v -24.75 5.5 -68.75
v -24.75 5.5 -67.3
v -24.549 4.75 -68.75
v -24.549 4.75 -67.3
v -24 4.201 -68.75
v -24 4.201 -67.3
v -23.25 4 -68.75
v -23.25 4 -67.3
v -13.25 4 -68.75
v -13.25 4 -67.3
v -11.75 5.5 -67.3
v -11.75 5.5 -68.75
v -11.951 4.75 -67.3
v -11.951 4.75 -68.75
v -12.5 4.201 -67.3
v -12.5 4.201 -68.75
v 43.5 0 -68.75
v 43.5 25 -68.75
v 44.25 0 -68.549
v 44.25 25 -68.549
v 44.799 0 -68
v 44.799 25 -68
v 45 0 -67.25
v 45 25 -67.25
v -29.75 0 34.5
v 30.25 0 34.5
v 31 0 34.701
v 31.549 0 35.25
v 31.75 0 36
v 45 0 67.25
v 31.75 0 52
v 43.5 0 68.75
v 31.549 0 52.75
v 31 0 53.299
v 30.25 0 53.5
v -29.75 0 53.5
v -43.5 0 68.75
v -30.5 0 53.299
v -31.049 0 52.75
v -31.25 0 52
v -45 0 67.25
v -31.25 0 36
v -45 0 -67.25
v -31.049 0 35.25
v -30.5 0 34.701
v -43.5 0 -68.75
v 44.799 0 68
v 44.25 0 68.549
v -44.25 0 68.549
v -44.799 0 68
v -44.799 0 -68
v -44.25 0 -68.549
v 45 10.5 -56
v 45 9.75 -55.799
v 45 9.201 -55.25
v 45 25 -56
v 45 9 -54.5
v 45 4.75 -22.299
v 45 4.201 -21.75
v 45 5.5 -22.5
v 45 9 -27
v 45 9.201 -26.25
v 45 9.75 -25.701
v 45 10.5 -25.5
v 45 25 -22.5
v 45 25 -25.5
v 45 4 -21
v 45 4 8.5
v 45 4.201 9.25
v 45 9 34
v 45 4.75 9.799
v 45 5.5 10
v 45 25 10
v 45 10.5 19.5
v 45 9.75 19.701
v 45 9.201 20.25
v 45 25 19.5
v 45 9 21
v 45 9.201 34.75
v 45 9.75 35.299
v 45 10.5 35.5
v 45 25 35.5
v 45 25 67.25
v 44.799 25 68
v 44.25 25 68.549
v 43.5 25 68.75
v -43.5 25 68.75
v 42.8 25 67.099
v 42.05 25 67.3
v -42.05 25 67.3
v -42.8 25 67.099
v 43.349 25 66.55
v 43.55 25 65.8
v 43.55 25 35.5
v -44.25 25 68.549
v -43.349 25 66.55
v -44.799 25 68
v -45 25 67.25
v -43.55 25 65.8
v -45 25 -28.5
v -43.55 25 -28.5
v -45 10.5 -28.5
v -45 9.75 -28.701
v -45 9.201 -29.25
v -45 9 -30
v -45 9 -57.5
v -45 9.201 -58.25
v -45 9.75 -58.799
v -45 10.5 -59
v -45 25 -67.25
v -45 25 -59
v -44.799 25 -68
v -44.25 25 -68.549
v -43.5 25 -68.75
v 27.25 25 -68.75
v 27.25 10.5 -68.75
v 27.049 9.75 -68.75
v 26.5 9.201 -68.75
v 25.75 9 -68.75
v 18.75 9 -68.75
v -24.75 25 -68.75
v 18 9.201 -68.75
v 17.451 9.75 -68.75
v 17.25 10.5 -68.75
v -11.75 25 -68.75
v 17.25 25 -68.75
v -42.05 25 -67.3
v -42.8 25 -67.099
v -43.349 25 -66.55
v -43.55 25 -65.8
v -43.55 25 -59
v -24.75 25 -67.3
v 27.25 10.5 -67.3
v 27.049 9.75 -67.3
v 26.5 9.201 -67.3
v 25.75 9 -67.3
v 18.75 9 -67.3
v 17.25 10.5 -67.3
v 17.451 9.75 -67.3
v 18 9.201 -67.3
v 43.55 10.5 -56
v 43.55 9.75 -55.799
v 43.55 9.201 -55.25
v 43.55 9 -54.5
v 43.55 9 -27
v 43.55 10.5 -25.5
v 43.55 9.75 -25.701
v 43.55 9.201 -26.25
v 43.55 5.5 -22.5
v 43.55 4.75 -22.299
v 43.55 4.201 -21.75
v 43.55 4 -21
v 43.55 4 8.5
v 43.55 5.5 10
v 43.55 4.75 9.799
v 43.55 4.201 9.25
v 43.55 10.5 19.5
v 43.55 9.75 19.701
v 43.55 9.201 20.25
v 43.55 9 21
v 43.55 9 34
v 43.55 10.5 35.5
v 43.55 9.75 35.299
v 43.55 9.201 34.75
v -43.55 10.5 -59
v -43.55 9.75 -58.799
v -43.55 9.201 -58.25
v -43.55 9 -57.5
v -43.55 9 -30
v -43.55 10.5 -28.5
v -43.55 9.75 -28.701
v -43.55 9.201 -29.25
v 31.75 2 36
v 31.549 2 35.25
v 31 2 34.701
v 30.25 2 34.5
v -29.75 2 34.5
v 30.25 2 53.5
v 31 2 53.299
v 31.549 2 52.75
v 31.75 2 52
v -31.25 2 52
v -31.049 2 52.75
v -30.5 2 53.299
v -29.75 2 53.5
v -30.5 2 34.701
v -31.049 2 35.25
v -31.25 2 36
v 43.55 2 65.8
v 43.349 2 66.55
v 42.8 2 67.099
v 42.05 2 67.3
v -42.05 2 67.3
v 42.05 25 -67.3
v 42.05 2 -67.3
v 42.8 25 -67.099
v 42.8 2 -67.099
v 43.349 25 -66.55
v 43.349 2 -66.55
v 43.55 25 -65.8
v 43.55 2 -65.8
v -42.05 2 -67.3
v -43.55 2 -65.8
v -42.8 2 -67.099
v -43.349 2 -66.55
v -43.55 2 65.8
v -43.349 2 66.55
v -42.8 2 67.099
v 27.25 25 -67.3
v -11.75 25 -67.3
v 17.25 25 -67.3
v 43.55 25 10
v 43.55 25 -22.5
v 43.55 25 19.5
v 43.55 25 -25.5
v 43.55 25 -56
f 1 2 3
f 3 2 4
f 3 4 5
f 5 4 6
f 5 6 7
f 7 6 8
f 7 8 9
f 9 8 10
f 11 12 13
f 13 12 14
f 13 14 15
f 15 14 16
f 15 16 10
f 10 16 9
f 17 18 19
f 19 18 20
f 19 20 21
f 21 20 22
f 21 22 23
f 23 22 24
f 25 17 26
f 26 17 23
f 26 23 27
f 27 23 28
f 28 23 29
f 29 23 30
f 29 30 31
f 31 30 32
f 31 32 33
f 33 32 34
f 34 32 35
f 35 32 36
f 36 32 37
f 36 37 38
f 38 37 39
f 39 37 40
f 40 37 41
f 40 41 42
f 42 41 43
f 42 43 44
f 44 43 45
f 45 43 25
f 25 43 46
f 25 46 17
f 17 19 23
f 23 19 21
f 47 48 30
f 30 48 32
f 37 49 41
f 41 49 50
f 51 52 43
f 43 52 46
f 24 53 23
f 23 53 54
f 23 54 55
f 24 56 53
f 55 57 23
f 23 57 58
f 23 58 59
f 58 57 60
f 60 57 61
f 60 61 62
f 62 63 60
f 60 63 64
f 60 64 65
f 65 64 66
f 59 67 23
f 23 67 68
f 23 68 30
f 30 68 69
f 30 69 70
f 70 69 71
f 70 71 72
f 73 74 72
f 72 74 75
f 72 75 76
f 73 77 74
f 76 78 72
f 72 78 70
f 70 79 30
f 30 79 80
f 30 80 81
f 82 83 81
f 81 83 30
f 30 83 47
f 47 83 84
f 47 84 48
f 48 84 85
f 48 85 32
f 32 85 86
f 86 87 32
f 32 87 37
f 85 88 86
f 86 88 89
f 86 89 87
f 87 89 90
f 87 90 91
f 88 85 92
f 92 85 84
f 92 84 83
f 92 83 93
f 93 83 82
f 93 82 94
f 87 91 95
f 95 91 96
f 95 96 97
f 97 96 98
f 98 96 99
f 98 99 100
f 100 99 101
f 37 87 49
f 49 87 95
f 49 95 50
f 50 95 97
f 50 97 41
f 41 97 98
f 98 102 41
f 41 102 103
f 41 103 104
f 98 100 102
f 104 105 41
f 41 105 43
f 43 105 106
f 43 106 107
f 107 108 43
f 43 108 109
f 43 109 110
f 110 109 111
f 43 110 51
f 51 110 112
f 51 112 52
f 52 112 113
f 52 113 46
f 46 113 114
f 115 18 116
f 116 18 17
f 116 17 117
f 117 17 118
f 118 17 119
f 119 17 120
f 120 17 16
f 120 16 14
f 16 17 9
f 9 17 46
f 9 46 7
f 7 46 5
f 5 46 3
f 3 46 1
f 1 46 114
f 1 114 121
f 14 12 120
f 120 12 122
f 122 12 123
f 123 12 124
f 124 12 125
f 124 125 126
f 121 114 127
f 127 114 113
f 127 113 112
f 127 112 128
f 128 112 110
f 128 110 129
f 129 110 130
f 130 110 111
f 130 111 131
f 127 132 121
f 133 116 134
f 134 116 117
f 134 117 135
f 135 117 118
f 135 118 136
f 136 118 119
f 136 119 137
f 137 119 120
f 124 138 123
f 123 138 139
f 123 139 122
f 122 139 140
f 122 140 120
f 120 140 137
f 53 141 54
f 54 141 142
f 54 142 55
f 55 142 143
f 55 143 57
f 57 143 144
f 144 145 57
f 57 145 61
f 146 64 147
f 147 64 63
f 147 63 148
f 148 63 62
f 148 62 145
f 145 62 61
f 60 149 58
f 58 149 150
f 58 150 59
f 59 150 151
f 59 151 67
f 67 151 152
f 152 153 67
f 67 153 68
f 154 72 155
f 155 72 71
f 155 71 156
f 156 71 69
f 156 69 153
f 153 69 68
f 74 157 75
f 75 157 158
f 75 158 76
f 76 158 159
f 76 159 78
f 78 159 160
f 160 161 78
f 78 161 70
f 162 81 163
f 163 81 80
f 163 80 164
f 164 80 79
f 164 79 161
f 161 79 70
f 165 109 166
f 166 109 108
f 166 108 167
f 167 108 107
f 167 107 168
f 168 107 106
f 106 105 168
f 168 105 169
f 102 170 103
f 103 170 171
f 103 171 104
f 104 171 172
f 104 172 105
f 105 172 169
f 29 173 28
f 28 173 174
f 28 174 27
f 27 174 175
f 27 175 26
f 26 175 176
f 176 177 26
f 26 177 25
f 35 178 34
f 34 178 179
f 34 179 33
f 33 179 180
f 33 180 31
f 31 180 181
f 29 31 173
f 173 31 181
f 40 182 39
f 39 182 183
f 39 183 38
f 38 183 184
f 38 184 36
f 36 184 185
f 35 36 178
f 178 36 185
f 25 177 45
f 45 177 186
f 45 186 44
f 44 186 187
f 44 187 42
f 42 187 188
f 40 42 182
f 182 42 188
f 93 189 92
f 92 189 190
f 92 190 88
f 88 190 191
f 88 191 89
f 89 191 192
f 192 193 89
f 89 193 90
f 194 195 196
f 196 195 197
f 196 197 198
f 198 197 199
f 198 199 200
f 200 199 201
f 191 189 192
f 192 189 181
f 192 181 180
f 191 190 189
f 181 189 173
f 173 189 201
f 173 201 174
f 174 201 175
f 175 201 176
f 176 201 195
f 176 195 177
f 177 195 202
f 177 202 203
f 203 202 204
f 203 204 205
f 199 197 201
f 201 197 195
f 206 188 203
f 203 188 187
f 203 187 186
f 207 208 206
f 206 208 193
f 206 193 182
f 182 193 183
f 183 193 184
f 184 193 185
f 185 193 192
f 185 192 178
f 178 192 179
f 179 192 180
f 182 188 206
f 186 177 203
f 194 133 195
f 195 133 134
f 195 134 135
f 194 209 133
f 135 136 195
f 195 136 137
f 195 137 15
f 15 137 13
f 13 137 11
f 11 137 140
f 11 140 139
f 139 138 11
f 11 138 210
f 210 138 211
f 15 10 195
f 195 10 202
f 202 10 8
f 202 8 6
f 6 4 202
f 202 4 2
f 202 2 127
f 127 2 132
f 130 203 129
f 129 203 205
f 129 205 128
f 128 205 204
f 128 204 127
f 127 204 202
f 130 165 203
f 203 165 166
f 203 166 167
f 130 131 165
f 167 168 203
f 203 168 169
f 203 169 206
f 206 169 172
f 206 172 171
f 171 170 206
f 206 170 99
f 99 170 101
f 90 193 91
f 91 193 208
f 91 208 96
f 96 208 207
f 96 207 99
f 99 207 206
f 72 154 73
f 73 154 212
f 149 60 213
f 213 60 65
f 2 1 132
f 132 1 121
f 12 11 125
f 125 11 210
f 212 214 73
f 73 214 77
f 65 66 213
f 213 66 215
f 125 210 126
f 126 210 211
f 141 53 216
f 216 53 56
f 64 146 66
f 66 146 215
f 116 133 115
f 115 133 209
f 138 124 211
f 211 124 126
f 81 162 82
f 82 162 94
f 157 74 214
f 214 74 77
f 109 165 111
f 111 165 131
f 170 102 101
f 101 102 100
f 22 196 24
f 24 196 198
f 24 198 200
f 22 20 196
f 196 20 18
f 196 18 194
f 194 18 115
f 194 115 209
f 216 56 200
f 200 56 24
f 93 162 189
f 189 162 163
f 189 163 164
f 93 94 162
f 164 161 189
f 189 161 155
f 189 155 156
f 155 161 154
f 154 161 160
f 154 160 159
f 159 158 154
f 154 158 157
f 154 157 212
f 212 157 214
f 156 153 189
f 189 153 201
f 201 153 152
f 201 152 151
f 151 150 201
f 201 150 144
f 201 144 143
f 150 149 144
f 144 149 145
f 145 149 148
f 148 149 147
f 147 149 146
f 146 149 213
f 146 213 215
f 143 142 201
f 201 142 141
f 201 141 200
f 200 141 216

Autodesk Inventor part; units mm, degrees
ref_plane "YZ Plane" through (0, 0, 0) normal (1, 0, 0) x (0, 1, 0)
ref_plane "XZ Plane" through (0, 0, 0) normal (0, 1, 0) x (-1, 0, 0)
ref_plane "XY Plane" through (0, 0, 0) normal (0, 0, 1) x (1, 0, 0)
sketch "Sketch1" plane through (0, 0, 0) normal (0, 1, 0) x (-1, 0, 0)
  line L0 (-45, 68.75) -> (45, 68.75)
  line L1 (45, 68.75) -> (45, -68.75)
  line L2 (45, -68.75) -> (-45, -68.75)
  line L3 (-45, -68.75) -> (-45, 68.75)
  line L4 (-45, 68.75) -> (45, -68.75) construction
  line L5 (45, 68.75) -> (-45, -68.75) construction
  point P0 (0, 0)
  dimension "d0" = 137.5
  dimension "d1" = 90
extrude "Extrusion1" add sketch "Sketch1" along normal blind 25
sketch "Sketch2" plane through (0, 25, 0) normal (0, 1, 0) x (1, 0, 0)
  line L0 (43.55, -67.3) -> (-43.55, -67.3)
  line L1 (-43.55, -67.3) -> (-43.55, 67.3)
  line L2 (-43.55, 67.3) -> (43.55, 67.3)
  line L3 (43.55, 67.3) -> (43.55, -67.3)
  line L4 (43.55, -67.3) -> (-43.55, 67.3) construction
  line L5 (-43.55, -67.3) -> (43.55, 67.3) construction
  point P0 (0, 0)
  dimension "d4" = 134.6
  dimension "d5" = 87.1
extrude "Extrusion2" cut sketch "Sketch2" against normal blind 23
sketch "Sketch4" plane through (0, 25, 0) normal (0, 1, 0) x (1, 0, 0)
  line L0 (-45, 68.75) -> (-45, -68.75) projected
  line L1 (-43.55, -67.3) -> (-43.55, 67.3) projected
  line L2 (-45, 59) -> (-43.55, 59)
  line L3 (-43.55, 59) -> (-43.55, 28.5)
  line L4 (-43.55, 28.5) -> (-45, 28.5)
  line L5 (-45, 28.5) -> (-45, 59)
  line L6 (41.75, -65.5) -> (-41.75, -65.5)
  line L7 (-41.75, -65.5) -> (-41.75, 65.5)
  line L8 (-41.75, 65.5) -> (41.75, 65.5)
  line L9 (41.75, 65.5) -> (41.75, -65.5)
  line L10 (41.75, -65.5) -> (-41.75, 65.5) construction
  line L11 (-41.75, -65.5) -> (41.75, 65.5) construction
  line L12 (-43.55, 67.3) -> (43.55, 67.3) projected
  line L13 (45, 68.75) -> (-45, 68.75) projected
  line L14 (17.25, 67.3) -> (27.25, 67.3)
  line L15 (27.25, 67.3) -> (27.25, 68.75)
  line L16 (27.25, 68.75) -> (17.25, 68.75)
  line L17 (17.25, 68.75) -> (17.25, 67.3)
  line L18 (43.55, 67.3) -> (43.55, -67.3) projected
  line L19 (45, -68.75) -> (45, 68.75) projected
  line L20 (43.55, 56) -> (45, 56)
  line L21 (45, 56) -> (45, 25.5)
  line L22 (45, 25.5) -> (43.55, 25.5)
  line L23 (43.55, 25.5) -> (43.55, 56)
  line L24 (43.55, -35.5) -> (45, -35.5)
  line L25 (45, -35.5) -> (45, -19.5)
  line L26 (45, -19.5) -> (43.55, -19.5)
  line L27 (43.55, -19.5) -> (43.55, -35.5)
  point P0 (0, 0)
  point P1 (45, 56)
  dimension "d10" = 30.5
  dimension "d11" = 131
  dimension "d12" = 83.5
  dimension "d13" = 6.5
  dimension "d16" = 10
  dimension "d17" = 14.5
  dimension "d18" = 30.5
  dimension "d19" = 9.5
  dimension "d20" = 30
  dimension "d21" = 16
extrude "Extrusion4" cut sketch "Sketch4" against normal blind 16 contours L2 L1 L4 L0 | L13 L15 L12 L17 | L19 L22 L18 L20 | L19 L24 L18 L26
sketch "Sketch5" plane through (0, 25, 0) normal (0, 1, 0) x (1, 0, 0)
  line L0 (41.75, -65.5) -> (-41.75, -65.5)
  line L1 (-41.75, -65.5) -> (-41.75, 65.5)
  line L2 (-41.75, 65.5) -> (41.75, 65.5)
  line L3 (41.75, 65.5) -> (41.75, -65.5)
  line L4 (41.75, -65.5) -> (-41.75, 65.5) construction
  line L5 (-41.75, -65.5) -> (41.75, 65.5) construction
  line L6 (43.55, 25.5) -> (43.55, -19.5) projected
  line L7 (45, -19.5) -> (45, 25.5) projected
  line L8 (43.55, -10) -> (45, -10)
  line L9 (45, -10) -> (45, 22.5)
  line L10 (45, 22.5) -> (43.55, 22.5)
  line L11 (43.55, 22.5) -> (43.55, -10)
  line L12 (-43.55, 67.3) -> (43.55, 67.3) projected
  line L13 (45, 68.75) -> (-45, 68.75) projected
  line L14 (-11.75, 67.3) -> (-24.75, 67.3)
  line L15 (-24.75, 67.3) -> (-24.75, 68.75)
  line L16 (-24.75, 68.75) -> (-11.75, 68.75)
  line L17 (-11.75, 68.75) -> (-11.75, 67.3)
  point P0 (0, 0)
  point P1 (43.55, 22.5)
  dimension "d26" = 131
  dimension "d27" = 83.5
  dimension "d28" = 55.5
  dimension "d29" = 32.5
  dimension "d43" = 13
  dimension "d44" = 17
extrude "Extrusion5" cut sketch "Sketch5" against normal blind 21 contours L10 L7 L8 L6 | L15 L13 L17 L12
sketch "Sketch6" plane through (0, 2, 0) normal (0, 1, 0) x (1, 0, 0)
  line L0 (41.75, -67.5) -> (-41.75, -67.5)
  line L1 (-41.75, -67.5) -> (-41.75, 67.5)
  line L2 (-41.75, 67.5) -> (41.75, 67.5)
  line L3 (41.75, 67.5) -> (41.75, -67.5)
  line L4 (41.75, -67.5) -> (-41.75, 67.5) construction
  line L5 (-41.75, -67.5) -> (41.75, 67.5) construction
  line L6 (-31.25, -53.5) -> (31.75, -53.5)
  line L7 (31.75, -53.5) -> (31.75, -34.5)
  line L8 (31.75, -34.5) -> (-31.25, -34.5)
  line L9 (-31.25, -34.5) -> (-31.25, -53.5)
  point P0 (0, 0)
  dimension "d32" = 135
  dimension "d33" = 83.5
  dimension "d34" = 19
  dimension "d35" = 63
  dimension "d36" = 10
  dimension "d37" = 14
extrude "Extrusion6" cut sketch "Sketch6" against normal through all contours L9 L8 L7 L6
fillet "Fillet1" radius 1.5 24 edges at (-43.55, 13.5, 67.3) (-43.55, 13.5, -67.3) (43.55, 13.5, -67.3) (43.55, 13.5, 67.3) (-31.25, 1, 34.5) (-31.25, 1, 53.5) (31.75, 1, 53.5) (31.75, 1, 34.5) (-44.275, 9, -28.5) (-44.275, 9, -59) (44.275, 9, 35.5) (44.275, 9, 19.5) (44.275, 4, 10) (44.275, 4, -22.5) (44.275, 9, -25.5) (44.275, 9, -56) (17.25, 9, -68.025) (27.25, 9, -68.025) (-45, 12.5, -68.75) (-45, 12.5, 68.75) (45, 12.5, 68.75) (45, 12.5, -68.75) (-11.75, 4, -68.025) (-24.75, 4, -68.025)
properties part number "BoardCover"
